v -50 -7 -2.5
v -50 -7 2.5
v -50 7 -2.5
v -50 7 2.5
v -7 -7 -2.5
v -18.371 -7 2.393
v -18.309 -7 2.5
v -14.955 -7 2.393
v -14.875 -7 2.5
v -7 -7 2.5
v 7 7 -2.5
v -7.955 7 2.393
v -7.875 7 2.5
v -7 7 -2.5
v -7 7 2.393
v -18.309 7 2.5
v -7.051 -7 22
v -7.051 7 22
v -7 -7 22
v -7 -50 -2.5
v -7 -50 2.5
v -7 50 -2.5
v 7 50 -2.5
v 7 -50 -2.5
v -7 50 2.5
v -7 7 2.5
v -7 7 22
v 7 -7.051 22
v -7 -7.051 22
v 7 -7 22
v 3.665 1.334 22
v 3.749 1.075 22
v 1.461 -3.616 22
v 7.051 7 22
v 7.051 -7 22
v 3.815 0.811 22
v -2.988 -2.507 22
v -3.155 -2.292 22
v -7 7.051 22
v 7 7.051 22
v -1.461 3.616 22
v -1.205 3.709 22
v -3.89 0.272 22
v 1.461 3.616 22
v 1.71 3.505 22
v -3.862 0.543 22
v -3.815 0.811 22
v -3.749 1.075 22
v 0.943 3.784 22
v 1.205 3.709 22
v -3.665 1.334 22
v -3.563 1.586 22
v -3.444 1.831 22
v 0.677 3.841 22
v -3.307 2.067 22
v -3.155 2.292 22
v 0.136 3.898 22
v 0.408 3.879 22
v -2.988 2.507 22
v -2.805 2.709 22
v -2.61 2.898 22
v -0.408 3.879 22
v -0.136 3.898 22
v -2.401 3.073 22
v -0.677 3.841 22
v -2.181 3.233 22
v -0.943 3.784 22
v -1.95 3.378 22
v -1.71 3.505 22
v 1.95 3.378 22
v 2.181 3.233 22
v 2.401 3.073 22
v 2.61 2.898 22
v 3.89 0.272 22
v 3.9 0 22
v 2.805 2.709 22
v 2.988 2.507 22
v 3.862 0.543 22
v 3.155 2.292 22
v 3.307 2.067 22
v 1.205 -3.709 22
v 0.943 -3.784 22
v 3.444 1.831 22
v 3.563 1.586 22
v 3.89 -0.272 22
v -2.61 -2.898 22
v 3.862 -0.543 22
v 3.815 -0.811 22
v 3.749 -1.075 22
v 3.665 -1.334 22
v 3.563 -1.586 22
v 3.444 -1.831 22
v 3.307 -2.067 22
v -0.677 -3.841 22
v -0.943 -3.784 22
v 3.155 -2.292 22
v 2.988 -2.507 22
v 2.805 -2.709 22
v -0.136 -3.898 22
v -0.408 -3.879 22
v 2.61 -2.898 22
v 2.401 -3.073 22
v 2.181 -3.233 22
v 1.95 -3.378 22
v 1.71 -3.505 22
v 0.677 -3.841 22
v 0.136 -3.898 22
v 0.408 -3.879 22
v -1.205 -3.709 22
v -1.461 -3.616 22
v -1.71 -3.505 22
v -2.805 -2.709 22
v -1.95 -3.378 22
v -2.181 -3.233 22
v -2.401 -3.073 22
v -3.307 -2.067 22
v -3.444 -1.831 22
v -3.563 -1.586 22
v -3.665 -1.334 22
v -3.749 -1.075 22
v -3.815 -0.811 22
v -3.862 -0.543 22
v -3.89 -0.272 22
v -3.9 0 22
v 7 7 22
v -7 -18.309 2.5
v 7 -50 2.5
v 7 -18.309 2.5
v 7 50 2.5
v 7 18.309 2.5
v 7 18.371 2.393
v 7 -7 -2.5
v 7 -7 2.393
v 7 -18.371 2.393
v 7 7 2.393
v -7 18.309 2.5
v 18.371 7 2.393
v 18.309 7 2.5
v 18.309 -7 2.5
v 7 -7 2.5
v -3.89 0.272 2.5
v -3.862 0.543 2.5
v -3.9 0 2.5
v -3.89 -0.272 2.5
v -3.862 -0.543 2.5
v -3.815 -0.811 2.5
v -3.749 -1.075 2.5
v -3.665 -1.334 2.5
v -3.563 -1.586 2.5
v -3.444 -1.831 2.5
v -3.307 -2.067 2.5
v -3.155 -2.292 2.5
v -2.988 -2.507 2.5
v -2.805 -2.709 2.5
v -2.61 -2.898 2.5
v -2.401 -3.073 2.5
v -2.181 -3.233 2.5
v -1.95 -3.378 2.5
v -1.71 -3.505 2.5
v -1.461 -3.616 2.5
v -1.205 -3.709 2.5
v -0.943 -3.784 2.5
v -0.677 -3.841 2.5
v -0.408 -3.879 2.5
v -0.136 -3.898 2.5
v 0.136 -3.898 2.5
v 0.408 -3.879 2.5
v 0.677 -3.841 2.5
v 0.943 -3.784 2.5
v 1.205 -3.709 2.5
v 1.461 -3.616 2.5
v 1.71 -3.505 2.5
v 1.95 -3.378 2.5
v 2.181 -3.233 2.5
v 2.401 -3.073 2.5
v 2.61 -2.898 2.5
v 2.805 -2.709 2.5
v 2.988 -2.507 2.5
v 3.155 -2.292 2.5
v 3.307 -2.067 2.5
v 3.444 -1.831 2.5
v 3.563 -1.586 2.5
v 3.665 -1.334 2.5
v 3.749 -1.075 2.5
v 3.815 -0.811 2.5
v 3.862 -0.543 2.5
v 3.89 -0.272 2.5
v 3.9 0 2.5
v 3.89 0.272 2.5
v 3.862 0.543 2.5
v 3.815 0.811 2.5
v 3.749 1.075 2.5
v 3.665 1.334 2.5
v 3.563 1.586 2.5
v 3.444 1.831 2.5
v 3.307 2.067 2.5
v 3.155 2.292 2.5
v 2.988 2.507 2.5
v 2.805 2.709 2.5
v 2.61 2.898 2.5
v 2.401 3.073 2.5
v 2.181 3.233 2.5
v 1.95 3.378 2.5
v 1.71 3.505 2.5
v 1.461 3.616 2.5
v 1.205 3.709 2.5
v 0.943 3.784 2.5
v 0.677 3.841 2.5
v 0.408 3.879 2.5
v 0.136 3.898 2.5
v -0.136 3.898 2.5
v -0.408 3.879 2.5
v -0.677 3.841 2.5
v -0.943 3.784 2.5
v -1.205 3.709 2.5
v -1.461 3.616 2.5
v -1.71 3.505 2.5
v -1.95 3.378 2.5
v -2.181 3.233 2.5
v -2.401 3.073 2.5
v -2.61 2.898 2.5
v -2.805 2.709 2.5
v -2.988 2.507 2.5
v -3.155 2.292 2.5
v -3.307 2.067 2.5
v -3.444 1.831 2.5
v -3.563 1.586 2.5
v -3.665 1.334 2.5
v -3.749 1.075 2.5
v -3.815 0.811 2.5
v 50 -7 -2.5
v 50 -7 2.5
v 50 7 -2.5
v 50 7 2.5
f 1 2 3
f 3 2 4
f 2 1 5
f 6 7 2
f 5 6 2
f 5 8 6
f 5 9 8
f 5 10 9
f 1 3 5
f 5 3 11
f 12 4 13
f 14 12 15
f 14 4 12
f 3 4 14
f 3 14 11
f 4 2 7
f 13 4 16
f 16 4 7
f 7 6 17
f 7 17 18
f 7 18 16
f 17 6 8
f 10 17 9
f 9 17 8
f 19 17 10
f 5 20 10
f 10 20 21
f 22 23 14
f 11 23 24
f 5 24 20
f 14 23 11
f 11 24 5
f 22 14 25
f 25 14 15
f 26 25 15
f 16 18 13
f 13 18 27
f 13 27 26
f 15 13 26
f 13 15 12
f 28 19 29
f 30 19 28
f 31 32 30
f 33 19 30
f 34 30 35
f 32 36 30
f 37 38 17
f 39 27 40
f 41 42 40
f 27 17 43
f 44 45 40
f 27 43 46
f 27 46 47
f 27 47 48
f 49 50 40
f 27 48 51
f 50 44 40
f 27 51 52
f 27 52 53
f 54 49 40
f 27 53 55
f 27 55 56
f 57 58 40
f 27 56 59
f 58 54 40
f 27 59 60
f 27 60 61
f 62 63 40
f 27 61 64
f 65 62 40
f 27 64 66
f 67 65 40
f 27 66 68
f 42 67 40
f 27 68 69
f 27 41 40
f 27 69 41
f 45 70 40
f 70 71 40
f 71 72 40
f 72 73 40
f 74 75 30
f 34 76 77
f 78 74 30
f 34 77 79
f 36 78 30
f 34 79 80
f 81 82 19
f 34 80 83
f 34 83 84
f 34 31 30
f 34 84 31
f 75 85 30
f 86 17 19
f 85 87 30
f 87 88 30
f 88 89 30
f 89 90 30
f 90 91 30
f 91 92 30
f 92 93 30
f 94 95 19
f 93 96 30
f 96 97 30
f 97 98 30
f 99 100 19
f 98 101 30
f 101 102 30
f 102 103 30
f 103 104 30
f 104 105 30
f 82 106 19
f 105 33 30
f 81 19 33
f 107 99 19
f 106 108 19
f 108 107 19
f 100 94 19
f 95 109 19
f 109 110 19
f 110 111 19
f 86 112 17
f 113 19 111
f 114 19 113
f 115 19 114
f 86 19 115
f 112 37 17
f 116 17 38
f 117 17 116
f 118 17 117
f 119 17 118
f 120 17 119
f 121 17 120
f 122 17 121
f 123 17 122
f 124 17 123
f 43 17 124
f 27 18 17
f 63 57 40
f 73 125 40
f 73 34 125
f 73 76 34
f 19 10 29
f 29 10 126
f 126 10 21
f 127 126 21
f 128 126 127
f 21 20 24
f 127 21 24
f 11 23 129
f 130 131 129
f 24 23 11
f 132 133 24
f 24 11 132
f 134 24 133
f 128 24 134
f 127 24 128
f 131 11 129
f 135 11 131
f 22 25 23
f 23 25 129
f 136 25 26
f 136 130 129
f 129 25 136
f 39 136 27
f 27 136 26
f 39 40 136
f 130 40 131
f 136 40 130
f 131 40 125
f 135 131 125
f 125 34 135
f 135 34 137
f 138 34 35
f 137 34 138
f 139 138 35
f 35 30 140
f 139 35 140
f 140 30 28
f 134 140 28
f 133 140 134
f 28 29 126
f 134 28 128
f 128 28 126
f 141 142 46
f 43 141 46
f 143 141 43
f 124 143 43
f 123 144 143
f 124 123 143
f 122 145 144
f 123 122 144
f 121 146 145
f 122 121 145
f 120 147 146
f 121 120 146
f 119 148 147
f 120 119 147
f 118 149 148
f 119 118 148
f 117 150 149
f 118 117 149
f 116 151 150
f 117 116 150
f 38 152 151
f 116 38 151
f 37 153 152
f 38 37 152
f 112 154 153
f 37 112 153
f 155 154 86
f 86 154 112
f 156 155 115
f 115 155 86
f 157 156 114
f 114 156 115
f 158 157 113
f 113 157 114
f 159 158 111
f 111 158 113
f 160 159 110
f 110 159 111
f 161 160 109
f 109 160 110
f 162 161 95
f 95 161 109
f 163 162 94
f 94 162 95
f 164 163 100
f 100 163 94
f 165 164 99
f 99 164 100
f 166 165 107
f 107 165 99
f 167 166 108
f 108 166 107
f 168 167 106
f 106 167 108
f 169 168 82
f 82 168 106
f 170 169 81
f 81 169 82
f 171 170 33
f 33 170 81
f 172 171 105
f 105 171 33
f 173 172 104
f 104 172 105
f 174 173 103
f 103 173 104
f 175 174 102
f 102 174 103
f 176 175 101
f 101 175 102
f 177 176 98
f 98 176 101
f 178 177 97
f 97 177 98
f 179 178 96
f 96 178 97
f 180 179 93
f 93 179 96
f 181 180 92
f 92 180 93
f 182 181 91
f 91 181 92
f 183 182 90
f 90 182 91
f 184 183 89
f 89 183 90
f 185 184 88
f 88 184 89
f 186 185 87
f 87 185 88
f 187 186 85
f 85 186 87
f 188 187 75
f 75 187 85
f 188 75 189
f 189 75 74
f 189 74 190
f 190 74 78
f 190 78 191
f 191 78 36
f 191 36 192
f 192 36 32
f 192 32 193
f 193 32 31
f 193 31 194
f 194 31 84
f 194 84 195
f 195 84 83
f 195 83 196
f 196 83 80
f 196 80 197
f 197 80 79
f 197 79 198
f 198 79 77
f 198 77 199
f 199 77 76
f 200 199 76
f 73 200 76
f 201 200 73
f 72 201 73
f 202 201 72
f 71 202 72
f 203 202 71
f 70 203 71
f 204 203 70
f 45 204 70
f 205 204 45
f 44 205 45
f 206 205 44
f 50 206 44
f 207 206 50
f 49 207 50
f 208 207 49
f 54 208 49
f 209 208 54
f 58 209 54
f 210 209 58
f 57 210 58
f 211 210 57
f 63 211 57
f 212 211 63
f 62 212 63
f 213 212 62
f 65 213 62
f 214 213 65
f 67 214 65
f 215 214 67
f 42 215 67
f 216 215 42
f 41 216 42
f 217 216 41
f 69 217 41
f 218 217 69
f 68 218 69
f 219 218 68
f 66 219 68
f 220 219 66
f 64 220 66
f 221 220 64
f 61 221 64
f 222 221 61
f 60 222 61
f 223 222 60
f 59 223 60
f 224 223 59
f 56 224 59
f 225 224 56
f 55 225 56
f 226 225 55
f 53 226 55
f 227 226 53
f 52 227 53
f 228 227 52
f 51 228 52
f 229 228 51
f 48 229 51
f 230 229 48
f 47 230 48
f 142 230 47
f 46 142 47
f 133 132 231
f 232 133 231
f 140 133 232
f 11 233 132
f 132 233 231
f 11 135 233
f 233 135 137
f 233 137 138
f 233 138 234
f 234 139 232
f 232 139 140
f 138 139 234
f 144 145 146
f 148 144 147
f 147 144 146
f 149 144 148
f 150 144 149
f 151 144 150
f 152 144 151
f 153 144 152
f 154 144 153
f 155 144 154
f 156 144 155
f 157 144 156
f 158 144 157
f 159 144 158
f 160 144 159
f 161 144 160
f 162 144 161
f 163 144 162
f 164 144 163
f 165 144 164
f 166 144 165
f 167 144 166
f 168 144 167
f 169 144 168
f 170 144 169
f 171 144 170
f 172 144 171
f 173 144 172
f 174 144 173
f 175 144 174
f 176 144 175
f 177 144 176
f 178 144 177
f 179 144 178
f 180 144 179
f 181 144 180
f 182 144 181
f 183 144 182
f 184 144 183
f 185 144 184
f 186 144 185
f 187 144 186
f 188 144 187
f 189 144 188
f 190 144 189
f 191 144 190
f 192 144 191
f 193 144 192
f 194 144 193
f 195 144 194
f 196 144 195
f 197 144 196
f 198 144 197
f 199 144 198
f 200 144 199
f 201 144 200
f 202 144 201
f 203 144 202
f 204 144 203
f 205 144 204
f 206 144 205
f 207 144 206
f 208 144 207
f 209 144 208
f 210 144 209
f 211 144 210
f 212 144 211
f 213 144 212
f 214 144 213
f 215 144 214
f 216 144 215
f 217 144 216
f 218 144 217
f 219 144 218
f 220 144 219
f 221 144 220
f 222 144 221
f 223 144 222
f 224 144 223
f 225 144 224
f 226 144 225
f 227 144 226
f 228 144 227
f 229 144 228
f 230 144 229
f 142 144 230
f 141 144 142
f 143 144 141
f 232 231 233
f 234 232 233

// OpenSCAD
difference() {
  difference() {
    union() {
      cube(size=[100.000, 14.000, 5.000], center=true);
      translate(v=[0.000, 0.000, 0.000]) {
      rotate([-180.000,-180.000,-90.000]){
        cube(size=[100.000, 14.000, 5.000], center=true);
      } // End rotate
      } // End translate
      translate(v=[7.000, 0.000, 13.000]) {
      rotate([-180.000,-90.000,-180.000]){
        linear_extrude(height=14.000, twist=0, $fn=100, convexity=10, center=false) {
          polygon(points=[[21.213, 0.000], [-10.607, 18.371], [-10.607, -18.371]], path=[0, 1, 2]);
        } // End linear_extrude
      } // End rotate
      } // End translate
      translate(v=[0.000, 7.000, 13.000]) {
      rotate([-180.000,-90.000,-90.000]){
        linear_extrude(height=14.000, twist=0, $fn=100, convexity=10, center=false) {
          polygon(points=[[21.213, 0.000], [-10.607, 18.371], [-10.607, -18.371]], path=[0, 1, 2]);
        } // End linear_extrude
      } // End rotate
      } // End translate
    } // End union
    color([0.150, 0.150, 0.150, 1.000]) {
      translate(v=[0.000, 0.000, 2.500]) {
      rotate([-180.000,-180.000,-180.000]){
        cylinder(h=61.000, r1=3.900, r2=3.900, $fn=90, center=false);
      } // End rotate
      } // End translate
    } // End color
  } // End difference
  translate(v=[0.000, 0.000, 40.000]) {
  rotate([-180.000,-180.000,-180.000]){
    cube(size=[20.000, 20.000, 36.000], center=true);
  } // End rotate
  } // End translate
} // End difference
